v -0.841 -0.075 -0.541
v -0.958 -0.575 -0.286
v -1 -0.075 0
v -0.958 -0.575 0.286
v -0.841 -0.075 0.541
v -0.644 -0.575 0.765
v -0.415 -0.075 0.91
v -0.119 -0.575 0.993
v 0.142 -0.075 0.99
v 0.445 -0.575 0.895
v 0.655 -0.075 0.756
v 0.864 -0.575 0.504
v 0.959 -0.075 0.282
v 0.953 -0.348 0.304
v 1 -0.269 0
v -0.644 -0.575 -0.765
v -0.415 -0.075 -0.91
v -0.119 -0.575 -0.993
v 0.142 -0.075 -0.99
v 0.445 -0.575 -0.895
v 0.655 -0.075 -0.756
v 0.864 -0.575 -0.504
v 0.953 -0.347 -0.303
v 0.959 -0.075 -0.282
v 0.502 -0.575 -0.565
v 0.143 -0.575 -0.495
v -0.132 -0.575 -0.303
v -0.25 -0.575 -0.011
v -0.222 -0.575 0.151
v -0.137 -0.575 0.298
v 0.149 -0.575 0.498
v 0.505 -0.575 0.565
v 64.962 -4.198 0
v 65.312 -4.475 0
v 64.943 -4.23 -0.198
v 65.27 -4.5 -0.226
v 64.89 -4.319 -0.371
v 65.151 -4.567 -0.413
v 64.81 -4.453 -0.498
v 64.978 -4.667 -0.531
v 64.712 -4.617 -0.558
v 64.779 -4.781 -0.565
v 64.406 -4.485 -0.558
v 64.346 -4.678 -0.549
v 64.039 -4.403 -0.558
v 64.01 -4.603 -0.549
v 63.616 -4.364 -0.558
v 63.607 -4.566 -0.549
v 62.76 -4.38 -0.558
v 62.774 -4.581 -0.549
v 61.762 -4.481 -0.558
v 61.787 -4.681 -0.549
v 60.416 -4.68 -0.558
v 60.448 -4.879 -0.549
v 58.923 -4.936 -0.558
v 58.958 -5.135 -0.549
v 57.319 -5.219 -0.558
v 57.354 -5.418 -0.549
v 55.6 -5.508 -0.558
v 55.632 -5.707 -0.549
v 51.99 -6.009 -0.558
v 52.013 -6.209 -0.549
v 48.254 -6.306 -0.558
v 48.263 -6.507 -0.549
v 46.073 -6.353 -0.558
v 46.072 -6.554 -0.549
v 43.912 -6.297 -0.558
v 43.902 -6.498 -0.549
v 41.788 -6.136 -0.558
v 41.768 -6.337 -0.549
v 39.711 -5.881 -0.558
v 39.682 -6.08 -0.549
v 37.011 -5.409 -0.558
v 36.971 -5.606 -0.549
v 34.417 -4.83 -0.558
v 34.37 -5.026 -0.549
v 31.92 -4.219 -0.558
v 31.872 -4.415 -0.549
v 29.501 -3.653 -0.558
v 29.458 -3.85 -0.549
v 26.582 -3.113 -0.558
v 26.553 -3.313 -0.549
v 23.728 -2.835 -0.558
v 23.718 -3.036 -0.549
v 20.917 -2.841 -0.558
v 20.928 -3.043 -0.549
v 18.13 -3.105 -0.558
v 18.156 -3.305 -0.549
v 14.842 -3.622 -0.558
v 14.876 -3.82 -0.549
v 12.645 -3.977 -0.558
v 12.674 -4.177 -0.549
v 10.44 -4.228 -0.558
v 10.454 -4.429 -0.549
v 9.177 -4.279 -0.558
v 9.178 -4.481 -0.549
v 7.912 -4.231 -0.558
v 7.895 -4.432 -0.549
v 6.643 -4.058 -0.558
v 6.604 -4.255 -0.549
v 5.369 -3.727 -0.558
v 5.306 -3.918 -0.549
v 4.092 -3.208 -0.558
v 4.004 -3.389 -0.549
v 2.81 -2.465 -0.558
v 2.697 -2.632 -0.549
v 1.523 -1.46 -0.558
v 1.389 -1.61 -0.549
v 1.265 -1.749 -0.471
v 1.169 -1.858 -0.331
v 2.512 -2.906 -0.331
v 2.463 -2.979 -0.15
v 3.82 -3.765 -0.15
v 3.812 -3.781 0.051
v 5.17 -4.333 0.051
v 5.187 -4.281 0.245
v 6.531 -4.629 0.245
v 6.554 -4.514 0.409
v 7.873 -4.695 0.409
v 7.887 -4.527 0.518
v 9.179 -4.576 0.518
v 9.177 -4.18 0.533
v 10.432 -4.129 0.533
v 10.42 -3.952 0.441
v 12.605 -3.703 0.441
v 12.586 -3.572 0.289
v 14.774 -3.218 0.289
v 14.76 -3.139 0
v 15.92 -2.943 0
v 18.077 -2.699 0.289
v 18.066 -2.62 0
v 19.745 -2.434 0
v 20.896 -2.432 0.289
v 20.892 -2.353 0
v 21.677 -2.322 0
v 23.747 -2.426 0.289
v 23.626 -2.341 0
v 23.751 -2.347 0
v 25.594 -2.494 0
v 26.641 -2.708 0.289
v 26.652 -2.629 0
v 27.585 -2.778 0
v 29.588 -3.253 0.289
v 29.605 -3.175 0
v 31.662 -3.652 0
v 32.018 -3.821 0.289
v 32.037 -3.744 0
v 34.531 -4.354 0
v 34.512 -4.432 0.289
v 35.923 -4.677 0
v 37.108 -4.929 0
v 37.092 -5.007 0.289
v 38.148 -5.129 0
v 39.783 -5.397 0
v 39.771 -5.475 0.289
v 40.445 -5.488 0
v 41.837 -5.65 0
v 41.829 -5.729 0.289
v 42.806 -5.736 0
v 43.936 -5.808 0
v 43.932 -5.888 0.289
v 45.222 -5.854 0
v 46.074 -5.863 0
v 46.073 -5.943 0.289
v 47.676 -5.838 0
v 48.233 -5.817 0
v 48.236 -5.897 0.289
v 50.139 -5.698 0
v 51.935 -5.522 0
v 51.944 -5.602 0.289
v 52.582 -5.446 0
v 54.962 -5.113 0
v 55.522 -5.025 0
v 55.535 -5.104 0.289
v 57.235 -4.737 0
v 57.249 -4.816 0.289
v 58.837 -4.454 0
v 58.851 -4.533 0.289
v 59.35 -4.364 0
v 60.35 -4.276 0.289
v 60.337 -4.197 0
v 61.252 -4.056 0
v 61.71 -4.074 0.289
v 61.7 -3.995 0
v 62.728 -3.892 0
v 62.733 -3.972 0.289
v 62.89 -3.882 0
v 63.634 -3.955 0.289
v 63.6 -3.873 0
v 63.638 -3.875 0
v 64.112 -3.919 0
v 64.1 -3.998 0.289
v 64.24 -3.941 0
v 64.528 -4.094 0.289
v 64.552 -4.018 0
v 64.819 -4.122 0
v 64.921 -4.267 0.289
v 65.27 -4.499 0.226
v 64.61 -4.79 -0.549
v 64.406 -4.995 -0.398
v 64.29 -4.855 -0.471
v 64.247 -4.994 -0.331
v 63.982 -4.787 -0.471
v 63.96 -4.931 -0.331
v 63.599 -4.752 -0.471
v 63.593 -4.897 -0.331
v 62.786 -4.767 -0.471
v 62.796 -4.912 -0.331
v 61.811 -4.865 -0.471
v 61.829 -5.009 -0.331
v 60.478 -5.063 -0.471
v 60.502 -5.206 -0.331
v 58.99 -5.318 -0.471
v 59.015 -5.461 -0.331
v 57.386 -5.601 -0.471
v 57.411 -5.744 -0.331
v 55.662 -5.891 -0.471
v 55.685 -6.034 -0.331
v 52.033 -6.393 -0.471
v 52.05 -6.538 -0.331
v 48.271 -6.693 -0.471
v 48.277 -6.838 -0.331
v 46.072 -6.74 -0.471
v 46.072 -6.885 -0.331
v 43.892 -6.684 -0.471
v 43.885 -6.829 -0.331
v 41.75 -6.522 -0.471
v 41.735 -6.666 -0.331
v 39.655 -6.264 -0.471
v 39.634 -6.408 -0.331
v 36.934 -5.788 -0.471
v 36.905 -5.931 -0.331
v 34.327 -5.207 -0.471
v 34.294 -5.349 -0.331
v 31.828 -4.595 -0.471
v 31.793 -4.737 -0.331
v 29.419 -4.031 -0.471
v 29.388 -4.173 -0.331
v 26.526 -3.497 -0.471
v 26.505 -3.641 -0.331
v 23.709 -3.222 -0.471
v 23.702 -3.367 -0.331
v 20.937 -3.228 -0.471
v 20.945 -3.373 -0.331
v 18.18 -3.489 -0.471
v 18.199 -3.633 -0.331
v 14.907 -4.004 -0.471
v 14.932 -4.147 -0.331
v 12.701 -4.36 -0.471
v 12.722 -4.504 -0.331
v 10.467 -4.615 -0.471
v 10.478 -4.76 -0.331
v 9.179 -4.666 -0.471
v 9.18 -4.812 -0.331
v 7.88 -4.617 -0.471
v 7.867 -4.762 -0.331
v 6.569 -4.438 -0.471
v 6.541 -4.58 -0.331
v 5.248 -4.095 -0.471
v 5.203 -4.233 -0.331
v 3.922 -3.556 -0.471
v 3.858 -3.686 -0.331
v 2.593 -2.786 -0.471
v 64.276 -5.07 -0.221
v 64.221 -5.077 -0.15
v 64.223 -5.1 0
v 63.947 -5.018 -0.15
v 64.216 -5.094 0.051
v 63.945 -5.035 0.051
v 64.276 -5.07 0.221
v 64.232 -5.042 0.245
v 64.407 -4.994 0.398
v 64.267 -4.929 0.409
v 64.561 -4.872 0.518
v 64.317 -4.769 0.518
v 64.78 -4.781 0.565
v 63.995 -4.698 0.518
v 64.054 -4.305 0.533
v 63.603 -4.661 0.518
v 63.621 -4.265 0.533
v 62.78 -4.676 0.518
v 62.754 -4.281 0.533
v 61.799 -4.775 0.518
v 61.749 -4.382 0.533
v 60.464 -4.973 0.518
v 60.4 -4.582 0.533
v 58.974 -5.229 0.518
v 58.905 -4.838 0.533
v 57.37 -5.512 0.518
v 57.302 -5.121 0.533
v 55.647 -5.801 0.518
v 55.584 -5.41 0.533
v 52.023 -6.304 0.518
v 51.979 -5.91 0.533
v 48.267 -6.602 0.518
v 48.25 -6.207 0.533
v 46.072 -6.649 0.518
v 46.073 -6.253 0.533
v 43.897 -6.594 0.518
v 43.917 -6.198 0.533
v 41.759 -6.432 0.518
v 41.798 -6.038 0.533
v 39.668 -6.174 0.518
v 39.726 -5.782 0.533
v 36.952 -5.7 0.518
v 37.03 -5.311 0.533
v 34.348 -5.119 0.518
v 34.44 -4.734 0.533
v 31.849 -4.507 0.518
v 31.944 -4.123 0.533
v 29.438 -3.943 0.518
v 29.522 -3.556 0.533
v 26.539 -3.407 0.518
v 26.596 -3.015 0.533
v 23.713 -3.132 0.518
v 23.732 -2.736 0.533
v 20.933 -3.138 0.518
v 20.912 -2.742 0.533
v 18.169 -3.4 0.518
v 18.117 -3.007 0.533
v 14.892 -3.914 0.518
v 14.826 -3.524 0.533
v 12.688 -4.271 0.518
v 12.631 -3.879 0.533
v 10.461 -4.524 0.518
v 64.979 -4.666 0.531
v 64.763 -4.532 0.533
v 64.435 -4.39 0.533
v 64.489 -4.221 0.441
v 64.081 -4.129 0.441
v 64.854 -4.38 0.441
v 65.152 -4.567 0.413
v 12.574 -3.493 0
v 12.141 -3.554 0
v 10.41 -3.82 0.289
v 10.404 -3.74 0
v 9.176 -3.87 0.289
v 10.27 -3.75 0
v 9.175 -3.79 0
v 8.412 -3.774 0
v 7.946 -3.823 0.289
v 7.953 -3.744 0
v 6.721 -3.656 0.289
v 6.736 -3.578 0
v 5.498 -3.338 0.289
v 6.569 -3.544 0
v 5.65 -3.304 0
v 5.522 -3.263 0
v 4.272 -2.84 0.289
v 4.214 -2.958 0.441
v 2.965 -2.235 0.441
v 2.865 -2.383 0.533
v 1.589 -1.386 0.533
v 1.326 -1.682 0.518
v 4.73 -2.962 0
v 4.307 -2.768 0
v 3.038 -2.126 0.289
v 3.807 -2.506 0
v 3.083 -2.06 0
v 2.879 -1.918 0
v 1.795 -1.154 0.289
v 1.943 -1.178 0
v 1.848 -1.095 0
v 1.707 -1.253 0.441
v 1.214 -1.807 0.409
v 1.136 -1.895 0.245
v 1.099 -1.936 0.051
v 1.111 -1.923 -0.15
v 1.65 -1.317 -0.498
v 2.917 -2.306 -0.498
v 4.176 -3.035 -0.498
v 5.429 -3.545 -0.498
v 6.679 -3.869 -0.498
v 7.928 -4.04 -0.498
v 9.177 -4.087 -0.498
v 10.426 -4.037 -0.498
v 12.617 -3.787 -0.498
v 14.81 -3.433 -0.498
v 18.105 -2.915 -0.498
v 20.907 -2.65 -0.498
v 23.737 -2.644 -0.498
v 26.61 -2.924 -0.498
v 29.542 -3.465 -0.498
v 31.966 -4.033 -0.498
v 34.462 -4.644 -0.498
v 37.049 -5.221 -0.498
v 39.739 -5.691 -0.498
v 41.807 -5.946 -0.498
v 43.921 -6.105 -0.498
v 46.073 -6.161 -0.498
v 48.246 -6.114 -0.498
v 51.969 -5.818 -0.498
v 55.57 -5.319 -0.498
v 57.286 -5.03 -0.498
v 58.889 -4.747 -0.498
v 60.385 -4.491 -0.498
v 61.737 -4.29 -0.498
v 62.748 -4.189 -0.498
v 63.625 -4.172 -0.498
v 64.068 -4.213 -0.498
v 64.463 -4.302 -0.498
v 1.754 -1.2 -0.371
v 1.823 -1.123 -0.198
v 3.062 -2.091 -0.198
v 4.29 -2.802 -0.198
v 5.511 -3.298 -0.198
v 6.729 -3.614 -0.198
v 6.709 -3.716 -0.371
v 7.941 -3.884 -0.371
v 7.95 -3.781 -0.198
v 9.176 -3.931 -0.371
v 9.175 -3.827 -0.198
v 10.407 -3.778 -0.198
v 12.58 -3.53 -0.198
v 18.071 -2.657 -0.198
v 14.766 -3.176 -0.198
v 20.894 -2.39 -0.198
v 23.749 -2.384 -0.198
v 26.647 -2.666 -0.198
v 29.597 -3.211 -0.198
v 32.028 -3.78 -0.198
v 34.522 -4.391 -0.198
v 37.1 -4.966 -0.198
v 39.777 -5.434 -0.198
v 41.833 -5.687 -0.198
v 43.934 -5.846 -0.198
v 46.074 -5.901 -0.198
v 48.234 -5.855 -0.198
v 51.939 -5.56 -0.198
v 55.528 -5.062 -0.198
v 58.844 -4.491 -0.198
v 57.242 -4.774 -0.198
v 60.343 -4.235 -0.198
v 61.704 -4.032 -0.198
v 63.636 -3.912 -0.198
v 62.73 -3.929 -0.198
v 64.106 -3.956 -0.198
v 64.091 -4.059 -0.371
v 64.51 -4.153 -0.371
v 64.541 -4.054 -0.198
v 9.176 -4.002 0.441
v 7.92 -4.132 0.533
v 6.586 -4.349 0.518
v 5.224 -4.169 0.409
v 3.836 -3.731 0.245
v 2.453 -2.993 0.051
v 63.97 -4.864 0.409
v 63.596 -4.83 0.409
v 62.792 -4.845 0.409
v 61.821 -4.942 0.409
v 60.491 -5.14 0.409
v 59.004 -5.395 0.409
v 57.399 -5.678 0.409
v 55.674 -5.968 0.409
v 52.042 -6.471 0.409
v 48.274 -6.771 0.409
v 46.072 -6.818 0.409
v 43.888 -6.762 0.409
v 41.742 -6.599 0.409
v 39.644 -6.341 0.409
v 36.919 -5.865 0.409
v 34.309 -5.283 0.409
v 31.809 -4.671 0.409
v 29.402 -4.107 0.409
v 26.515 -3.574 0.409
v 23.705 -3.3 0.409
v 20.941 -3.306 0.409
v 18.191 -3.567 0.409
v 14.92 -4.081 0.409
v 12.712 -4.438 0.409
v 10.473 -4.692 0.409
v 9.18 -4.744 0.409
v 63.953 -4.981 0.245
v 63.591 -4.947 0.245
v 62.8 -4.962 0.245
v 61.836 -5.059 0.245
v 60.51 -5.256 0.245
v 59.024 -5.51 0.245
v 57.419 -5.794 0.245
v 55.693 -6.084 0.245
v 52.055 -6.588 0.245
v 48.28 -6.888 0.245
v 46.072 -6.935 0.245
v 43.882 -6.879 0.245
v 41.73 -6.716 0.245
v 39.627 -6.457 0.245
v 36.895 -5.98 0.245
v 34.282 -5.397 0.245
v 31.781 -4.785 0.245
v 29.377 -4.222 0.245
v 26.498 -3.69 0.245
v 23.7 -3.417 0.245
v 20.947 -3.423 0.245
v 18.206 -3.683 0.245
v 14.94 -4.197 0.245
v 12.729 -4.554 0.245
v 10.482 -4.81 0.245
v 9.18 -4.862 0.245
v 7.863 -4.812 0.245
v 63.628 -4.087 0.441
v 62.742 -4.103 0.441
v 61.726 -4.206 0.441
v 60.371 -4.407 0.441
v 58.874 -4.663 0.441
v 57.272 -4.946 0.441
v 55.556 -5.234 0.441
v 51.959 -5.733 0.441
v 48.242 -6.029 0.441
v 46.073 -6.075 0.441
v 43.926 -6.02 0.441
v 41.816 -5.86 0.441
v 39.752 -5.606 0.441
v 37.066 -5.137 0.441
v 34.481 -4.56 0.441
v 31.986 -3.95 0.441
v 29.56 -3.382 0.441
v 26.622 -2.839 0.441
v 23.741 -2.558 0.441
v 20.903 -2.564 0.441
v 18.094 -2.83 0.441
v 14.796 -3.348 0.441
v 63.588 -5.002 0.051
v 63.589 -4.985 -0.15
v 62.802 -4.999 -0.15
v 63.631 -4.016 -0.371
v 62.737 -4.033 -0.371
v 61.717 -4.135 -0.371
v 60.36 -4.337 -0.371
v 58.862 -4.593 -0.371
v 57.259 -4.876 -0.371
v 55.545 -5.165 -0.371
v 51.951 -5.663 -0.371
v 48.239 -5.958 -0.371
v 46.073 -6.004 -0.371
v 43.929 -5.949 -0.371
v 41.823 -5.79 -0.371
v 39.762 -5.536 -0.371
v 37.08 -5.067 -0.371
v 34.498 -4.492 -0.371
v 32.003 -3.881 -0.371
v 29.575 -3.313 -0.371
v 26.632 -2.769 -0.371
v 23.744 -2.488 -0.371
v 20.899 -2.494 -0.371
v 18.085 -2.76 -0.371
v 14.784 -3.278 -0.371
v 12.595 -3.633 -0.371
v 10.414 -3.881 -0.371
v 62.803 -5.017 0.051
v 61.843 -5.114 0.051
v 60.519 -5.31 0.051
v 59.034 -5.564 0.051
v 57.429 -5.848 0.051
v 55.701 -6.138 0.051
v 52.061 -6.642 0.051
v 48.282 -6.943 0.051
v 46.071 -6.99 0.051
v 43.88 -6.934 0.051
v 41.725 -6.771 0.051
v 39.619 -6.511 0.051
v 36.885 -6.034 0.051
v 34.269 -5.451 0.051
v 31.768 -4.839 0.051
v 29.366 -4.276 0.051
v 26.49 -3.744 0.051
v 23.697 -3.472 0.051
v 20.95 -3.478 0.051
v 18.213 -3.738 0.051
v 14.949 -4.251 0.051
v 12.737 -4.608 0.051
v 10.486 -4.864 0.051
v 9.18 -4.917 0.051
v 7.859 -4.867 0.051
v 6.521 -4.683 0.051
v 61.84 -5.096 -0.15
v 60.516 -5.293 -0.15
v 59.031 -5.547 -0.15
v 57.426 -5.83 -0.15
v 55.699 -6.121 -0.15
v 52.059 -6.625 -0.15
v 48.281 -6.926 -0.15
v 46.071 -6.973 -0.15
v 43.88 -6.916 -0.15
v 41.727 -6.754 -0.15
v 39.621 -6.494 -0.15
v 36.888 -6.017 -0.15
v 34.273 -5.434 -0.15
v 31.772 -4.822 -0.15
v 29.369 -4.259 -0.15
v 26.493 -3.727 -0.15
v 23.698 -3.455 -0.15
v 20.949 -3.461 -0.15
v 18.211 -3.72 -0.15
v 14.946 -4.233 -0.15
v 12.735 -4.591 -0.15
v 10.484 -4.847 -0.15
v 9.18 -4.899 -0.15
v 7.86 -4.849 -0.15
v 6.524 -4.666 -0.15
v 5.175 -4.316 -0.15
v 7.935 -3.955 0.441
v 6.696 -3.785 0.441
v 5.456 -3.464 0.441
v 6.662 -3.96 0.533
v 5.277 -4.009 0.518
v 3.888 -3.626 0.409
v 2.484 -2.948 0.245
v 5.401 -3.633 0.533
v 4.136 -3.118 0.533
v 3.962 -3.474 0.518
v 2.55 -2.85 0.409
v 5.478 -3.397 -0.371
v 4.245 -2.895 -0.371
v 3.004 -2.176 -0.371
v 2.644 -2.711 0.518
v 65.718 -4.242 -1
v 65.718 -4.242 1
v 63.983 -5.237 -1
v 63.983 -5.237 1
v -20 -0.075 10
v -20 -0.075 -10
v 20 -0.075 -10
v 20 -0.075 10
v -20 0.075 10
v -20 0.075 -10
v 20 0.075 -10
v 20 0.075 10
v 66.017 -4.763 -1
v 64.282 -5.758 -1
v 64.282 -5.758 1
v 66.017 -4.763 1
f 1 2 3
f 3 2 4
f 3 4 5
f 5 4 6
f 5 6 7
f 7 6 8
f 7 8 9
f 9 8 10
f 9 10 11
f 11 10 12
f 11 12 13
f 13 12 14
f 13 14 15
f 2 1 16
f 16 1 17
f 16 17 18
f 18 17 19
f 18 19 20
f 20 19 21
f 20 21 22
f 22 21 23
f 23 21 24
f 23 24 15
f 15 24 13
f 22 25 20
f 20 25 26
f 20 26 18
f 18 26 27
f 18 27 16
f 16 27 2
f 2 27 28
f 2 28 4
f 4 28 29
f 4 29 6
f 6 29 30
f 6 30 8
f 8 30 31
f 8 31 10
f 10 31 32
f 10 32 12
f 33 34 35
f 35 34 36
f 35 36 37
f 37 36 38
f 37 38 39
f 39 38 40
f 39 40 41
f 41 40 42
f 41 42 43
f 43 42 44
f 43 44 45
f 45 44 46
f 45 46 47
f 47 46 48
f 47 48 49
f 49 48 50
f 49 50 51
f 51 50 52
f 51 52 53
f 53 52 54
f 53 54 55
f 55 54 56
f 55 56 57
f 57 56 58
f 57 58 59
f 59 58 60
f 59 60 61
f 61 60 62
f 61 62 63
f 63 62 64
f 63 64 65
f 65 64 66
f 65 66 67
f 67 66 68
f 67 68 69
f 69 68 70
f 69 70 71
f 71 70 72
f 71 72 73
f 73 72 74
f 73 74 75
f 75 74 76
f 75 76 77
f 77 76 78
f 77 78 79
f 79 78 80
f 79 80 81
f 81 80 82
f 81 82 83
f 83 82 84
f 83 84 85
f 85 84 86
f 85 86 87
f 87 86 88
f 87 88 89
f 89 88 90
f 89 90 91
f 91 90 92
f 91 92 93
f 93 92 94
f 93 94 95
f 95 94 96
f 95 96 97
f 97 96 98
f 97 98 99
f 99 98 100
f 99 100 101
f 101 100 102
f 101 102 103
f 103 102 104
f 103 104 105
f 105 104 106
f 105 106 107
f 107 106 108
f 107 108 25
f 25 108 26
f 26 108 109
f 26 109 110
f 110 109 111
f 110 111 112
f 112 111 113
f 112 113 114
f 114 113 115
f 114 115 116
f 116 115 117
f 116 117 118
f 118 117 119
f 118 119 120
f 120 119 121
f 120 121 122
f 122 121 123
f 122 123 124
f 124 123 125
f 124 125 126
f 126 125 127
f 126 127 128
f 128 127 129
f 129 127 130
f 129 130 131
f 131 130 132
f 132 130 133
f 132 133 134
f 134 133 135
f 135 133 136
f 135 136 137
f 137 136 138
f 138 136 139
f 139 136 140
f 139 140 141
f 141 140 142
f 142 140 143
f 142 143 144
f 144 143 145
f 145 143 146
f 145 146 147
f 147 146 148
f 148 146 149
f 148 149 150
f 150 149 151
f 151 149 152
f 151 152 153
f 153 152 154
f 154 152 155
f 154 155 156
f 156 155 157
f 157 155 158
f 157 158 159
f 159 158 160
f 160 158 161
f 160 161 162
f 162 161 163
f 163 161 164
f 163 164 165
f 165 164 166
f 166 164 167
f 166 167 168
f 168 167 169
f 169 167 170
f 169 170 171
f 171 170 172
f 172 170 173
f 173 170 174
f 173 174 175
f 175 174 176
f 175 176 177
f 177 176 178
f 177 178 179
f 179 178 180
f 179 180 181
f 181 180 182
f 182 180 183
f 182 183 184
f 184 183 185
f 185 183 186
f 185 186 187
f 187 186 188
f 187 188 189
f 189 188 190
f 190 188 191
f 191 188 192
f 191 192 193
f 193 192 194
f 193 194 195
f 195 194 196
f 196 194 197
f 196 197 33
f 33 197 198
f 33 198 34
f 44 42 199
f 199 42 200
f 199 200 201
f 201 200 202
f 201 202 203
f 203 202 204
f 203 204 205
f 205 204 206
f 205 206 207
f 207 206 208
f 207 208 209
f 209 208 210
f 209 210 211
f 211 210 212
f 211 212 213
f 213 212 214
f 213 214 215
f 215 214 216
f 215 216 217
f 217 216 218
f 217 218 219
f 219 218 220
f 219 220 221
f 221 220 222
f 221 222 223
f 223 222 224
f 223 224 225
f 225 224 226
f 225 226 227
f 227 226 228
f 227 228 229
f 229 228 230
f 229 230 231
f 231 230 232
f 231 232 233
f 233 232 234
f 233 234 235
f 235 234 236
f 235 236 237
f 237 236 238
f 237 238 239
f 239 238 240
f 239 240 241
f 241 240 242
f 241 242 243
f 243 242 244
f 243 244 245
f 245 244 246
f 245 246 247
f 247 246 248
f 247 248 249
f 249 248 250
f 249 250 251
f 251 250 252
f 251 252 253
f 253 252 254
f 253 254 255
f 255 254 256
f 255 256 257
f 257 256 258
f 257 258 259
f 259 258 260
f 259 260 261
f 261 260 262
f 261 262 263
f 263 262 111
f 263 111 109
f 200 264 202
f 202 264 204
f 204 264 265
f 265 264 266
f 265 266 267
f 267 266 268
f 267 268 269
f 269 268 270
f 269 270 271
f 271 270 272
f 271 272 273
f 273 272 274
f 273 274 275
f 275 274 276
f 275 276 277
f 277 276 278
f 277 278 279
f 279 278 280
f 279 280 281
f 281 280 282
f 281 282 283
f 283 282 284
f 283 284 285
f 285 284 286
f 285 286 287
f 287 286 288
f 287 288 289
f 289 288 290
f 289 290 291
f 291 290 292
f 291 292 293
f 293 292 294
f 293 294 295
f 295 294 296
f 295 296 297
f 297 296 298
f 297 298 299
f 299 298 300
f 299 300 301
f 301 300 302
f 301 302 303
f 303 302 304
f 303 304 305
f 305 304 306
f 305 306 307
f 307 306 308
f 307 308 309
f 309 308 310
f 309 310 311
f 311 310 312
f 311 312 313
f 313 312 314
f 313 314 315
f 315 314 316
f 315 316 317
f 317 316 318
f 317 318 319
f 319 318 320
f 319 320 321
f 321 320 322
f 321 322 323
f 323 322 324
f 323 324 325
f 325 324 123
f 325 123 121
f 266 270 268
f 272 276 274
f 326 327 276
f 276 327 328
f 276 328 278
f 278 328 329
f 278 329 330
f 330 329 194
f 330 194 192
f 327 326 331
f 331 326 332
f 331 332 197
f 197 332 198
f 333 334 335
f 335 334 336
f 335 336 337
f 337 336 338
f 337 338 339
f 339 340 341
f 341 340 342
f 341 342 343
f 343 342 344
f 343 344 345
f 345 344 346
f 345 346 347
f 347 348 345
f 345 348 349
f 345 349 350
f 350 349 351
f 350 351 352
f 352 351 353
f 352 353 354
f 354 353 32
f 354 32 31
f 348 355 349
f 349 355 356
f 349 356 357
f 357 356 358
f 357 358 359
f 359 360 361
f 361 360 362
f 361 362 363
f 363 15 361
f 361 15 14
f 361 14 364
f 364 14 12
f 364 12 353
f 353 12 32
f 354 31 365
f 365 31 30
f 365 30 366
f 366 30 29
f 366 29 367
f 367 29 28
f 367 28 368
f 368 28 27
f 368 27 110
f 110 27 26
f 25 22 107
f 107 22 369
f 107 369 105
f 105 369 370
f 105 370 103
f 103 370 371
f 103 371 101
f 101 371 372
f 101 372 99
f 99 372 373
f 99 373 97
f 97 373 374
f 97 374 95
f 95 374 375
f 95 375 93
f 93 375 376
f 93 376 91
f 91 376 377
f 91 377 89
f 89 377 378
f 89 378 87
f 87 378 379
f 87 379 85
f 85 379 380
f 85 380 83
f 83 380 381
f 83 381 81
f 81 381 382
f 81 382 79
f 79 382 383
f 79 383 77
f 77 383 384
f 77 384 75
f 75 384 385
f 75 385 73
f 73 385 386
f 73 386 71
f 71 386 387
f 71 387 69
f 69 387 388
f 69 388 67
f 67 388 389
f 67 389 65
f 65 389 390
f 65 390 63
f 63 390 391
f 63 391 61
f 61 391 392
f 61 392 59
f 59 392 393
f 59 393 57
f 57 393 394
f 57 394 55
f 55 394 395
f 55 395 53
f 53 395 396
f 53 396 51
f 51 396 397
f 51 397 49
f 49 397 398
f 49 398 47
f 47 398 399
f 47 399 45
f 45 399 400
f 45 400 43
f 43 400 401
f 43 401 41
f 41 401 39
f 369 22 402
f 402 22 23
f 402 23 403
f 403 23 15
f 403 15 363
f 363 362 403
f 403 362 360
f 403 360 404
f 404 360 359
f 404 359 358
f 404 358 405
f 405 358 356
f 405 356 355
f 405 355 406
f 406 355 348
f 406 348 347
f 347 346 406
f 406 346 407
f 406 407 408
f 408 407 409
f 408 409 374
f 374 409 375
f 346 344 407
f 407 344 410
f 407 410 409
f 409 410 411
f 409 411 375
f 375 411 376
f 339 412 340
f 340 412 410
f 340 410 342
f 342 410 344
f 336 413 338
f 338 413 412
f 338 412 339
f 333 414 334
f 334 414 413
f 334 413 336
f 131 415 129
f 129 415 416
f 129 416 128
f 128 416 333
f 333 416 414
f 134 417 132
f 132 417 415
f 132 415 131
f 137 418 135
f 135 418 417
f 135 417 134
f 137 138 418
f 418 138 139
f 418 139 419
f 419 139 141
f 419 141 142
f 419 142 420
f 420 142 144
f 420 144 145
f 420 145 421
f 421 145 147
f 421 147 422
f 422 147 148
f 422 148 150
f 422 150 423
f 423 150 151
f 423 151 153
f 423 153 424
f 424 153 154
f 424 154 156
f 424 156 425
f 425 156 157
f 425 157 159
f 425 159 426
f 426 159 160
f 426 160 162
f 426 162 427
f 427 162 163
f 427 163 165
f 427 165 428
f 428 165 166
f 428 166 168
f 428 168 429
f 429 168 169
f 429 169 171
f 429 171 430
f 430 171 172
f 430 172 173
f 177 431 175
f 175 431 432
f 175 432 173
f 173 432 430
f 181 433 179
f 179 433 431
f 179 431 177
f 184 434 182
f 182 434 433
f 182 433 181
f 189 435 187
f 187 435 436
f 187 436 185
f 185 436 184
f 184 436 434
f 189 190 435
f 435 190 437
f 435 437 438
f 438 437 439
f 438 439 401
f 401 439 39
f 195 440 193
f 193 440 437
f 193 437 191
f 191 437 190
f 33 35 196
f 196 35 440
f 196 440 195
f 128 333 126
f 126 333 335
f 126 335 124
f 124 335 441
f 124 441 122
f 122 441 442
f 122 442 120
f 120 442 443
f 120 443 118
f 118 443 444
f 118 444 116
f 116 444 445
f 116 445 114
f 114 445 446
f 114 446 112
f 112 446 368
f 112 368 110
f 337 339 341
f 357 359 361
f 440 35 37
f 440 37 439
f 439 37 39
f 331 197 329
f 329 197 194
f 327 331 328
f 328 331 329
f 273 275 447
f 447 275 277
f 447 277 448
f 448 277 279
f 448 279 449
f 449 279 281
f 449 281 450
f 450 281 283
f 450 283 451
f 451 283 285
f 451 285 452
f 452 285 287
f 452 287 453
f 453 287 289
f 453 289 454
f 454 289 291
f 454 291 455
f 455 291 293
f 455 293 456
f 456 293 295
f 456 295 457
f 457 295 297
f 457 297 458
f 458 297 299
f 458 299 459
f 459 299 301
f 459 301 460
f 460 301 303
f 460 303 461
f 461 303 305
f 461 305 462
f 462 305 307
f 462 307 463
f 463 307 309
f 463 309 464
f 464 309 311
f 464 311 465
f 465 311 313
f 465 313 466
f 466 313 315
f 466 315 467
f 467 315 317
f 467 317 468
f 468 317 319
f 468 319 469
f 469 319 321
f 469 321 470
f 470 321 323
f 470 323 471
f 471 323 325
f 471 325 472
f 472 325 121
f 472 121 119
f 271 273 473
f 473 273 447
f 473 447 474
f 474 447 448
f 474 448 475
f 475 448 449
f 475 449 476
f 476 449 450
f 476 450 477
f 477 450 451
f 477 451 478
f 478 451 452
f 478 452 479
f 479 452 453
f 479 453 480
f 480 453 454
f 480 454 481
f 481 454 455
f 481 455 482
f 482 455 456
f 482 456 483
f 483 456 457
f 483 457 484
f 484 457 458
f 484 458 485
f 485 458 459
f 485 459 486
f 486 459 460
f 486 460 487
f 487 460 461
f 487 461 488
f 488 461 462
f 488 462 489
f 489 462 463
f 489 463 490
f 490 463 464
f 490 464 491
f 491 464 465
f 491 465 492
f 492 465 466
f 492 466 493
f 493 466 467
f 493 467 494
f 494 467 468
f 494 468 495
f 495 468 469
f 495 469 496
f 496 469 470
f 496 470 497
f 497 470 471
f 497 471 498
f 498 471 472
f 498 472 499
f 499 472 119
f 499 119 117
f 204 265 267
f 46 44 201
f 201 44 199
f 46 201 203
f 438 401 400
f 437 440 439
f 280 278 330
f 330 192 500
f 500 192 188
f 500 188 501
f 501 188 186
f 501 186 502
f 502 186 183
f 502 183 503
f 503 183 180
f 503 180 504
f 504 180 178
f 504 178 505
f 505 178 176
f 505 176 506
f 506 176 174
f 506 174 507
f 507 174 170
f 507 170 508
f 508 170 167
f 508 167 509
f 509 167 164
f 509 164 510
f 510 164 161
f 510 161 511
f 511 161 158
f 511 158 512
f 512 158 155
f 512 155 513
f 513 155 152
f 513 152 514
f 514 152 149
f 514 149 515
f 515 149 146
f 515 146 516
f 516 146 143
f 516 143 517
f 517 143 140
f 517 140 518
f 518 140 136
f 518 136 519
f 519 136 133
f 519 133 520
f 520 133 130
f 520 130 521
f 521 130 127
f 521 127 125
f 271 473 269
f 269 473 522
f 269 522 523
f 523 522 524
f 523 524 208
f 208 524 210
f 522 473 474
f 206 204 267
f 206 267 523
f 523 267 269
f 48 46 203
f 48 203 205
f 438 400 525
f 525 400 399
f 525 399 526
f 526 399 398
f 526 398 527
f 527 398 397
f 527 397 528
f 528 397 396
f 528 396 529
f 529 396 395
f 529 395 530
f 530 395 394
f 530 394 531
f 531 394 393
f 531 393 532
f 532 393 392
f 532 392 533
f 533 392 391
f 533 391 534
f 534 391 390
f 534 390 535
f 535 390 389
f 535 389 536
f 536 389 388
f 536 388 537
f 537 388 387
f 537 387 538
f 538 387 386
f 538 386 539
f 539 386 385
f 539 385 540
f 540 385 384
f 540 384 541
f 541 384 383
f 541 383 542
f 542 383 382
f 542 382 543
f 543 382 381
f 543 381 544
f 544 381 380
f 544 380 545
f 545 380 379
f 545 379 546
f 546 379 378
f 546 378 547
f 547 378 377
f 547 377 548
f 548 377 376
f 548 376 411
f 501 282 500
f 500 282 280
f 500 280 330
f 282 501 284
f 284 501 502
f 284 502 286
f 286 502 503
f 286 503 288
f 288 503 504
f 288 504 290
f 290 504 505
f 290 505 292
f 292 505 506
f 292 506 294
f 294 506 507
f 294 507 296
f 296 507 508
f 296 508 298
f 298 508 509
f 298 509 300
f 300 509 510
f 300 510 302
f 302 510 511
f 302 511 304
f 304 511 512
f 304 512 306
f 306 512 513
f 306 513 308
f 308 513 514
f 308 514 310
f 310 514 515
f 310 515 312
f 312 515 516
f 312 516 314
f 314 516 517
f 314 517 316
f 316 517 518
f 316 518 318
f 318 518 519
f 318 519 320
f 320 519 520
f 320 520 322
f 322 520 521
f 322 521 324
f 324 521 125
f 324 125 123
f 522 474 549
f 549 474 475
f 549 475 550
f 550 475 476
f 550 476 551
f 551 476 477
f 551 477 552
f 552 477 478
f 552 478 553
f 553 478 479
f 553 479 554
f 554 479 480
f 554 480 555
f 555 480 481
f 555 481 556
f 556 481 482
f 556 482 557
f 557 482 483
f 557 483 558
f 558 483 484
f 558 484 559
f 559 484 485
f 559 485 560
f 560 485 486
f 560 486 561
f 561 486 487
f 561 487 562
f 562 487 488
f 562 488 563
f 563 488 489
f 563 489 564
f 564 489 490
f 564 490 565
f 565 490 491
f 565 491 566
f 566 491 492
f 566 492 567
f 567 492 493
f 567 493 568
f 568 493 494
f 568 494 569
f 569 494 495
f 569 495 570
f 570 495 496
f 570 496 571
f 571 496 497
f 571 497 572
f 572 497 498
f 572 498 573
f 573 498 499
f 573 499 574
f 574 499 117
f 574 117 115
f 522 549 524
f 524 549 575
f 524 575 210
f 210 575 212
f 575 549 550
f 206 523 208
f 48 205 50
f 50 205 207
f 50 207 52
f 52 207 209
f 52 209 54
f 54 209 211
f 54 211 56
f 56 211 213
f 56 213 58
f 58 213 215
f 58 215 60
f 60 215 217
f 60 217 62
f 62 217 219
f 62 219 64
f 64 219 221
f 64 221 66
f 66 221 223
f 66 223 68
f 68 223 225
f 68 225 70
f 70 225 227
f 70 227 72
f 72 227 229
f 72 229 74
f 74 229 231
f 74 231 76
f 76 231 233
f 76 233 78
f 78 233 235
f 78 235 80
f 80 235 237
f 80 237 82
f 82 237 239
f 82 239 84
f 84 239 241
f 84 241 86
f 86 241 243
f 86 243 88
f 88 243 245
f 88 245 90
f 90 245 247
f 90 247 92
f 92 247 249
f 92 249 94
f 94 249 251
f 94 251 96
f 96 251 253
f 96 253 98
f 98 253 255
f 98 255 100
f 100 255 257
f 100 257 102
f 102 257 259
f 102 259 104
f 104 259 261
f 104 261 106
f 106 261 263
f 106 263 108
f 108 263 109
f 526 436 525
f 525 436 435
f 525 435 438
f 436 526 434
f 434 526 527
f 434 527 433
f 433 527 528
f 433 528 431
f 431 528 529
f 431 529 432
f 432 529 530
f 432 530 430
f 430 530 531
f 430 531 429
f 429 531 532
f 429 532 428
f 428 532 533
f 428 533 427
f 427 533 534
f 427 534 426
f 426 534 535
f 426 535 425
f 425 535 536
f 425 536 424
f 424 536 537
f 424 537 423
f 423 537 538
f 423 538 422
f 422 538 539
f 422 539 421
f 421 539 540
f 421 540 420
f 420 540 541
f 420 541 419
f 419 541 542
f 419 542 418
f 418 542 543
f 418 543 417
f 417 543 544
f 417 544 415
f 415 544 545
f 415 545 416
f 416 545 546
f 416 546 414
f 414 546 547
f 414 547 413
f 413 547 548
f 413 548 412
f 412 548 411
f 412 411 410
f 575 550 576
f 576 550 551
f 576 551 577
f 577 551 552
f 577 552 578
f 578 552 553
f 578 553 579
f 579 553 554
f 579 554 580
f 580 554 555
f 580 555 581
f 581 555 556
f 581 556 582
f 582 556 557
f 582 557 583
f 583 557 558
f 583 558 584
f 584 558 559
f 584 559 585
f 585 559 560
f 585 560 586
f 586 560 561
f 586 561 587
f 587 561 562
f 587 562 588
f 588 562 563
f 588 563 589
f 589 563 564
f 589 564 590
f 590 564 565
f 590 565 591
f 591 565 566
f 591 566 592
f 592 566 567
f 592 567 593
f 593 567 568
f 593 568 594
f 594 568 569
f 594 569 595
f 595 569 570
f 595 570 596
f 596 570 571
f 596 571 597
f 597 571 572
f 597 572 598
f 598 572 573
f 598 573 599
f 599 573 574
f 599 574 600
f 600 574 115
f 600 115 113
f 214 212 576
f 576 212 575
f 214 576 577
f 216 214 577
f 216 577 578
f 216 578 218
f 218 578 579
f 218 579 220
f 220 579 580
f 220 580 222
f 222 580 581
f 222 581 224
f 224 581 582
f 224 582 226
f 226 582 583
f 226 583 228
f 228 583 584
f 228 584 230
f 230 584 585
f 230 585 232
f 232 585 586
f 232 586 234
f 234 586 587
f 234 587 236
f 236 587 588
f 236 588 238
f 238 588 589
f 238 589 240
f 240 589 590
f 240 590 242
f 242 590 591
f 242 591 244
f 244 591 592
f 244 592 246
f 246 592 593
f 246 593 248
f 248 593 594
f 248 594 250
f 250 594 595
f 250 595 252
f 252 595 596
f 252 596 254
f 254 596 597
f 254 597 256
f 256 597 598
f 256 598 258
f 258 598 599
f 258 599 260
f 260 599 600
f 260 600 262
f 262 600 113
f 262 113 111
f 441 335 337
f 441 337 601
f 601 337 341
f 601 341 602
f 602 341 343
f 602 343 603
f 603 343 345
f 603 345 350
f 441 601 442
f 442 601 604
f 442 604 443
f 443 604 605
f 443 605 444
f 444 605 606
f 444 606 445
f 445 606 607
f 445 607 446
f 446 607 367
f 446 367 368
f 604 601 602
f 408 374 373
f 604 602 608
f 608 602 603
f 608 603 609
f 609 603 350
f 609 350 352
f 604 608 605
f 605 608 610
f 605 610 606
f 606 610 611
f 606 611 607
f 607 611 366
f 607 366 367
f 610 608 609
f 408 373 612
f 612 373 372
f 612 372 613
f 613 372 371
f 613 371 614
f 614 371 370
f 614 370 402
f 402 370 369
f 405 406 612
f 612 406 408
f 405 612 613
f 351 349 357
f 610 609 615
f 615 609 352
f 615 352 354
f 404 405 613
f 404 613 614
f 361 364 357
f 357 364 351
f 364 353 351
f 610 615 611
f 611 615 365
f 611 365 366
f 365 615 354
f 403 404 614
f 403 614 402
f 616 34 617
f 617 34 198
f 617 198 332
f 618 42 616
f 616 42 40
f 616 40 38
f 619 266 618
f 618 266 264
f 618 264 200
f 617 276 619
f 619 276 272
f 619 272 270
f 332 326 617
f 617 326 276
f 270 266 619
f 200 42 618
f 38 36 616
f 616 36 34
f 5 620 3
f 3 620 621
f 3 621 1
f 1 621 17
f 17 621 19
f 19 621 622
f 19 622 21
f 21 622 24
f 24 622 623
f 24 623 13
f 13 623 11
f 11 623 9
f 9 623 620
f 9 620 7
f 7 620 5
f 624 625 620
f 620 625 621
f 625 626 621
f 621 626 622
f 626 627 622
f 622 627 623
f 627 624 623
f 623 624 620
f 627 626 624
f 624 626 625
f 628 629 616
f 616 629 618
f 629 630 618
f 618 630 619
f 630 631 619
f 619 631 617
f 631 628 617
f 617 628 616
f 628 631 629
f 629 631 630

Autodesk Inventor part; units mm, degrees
ref_plane "YZ Plane" through (0, 0, 0) normal (1, 0, 0) x (0, 1, 0)
ref_plane "XZ Plane" through (0, 0, 0) normal (0, 1, 0) x (-1, 0, 0)
sketch "Esboço1" plane through (0, 0, 0) normal (0, 1, 0) x (1, 0, 0)
  line L0 (-20, 10) -> (20, 10)
  line L1 (20, 10) -> (20, -10)
  line L2 (20, -10) -> (-20, -10)
  line L3 (-20, -10) -> (-20, 10)
  line L4 (-20, 10) -> (20, -10) construction
  line L5 (20, 10) -> (-20, -10) construction
  point P0 (0, 0)
  dimension "d0" = 40
  dimension "d1" = 20
extrude "Extrusão1" add sketch "Esboço1" along normal mid plane 0.15
sketch "Esboço2" plane through (0, 0, 0) normal (0, 0, 1) x (1, 0, 0)
  spline S0 degree 4 poles (0, 0) (8.3541, -9.8111) (24.1875, 8.376) (36.7418, -15.686) (63.5484, -2.469) (65, -5) knots 0 0 0 0 0 0.522164 1 1 1 1 1
  point P0 (13, -4)
  point P1 (25, -3)
  point P2 (40, -6)
  point P3 (59, -5)
  dimension "d7" = 65
  dimension "d8" = 6
  dimension "d9" = 19
  dimension "d10" = 15
  dimension "d11" = 12
  dimension "d12" = 4
  dimension "d13" = 3
  dimension "d14" = 6
  dimension "d15" = 5
  dimension "d17" = 5
ref_plane "Plano de trabalho1" through (0, 0, 0) normal (0.6483, -0.7614, 0) x (0.7614, 0.6483, 0)
sketch "Esboço3" plane through (0, 0, 0) normal (0.6483, -0.7614, 0) x (0.7614, 0.6483, 0)
  circle A0 centre (0, 0) radius 0.565
  dimension "d4" = 1.13
sweep "Varredura1" add profiles "Esboço3" path "Esboço2"
sketch "Esboço4" plane through (0, -0.075, 0) normal (0, -1, 0) x (1, 0, 0)
  circle A0 centre (0, 0) radius 1
  dimension "d18" = 2
extrude "Extrusão2" add sketch "Esboço4" along normal mid plane 1
sketch "Esboço5" plane through (0, 0.075, 0) normal (0, 1, 0) x (1, 0, 0)
  line L0 (-1.25, 1.25) -> (1.25, 1.25)
  line L1 (1.25, 1.25) -> (1.25, -1.25)
  line L2 (1.25, -1.25) -> (-1.25, -1.25)
  line L3 (-1.25, -1.25) -> (-1.25, 1.25)
  arc A0 (0.8636, 0.5042) -> (0.8636, -0.5042) centre (0, 0) ccw projected
  line L4 (-1.25, 1.25) -> (1.25, -1.25) construction
  line L5 (1.25, 1.25) -> (-1.25, -1.25) construction
  dimension "d21" = 2.5
  dimension "d22" = 2.5
extrude "Extrusão3" cut sketch "Esboço5" along normal blind 0.6
sketch "Esboço6" plane through (65, -5, 0) normal (0.4975, -0.8675, 0) x (0.8675, 0.4975, 0)
  line L0 (-1, -1) -> (1, -1)
  line L1 (1, -1) -> (1, 1)
  line L2 (1, 1) -> (-1, 1)
  line L3 (-1, 1) -> (-1, -1)
  circle A0 centre (0, 0) radius 0.565 projected
  line L4 (-1, -1) -> (1, 1) construction
  line L5 (1, -1) -> (-1, 1) construction
  point P0 (-53.8975, 0)
  point P1 (0.565, 0)
  dimension "d25" = 2
  dimension "d26" = 2
extrude "Extrusão4" add sketch "Esboço6" along normal mid plane 0.6 contours L3 L2 L1 L0 | A0
properties part number "Antena"
